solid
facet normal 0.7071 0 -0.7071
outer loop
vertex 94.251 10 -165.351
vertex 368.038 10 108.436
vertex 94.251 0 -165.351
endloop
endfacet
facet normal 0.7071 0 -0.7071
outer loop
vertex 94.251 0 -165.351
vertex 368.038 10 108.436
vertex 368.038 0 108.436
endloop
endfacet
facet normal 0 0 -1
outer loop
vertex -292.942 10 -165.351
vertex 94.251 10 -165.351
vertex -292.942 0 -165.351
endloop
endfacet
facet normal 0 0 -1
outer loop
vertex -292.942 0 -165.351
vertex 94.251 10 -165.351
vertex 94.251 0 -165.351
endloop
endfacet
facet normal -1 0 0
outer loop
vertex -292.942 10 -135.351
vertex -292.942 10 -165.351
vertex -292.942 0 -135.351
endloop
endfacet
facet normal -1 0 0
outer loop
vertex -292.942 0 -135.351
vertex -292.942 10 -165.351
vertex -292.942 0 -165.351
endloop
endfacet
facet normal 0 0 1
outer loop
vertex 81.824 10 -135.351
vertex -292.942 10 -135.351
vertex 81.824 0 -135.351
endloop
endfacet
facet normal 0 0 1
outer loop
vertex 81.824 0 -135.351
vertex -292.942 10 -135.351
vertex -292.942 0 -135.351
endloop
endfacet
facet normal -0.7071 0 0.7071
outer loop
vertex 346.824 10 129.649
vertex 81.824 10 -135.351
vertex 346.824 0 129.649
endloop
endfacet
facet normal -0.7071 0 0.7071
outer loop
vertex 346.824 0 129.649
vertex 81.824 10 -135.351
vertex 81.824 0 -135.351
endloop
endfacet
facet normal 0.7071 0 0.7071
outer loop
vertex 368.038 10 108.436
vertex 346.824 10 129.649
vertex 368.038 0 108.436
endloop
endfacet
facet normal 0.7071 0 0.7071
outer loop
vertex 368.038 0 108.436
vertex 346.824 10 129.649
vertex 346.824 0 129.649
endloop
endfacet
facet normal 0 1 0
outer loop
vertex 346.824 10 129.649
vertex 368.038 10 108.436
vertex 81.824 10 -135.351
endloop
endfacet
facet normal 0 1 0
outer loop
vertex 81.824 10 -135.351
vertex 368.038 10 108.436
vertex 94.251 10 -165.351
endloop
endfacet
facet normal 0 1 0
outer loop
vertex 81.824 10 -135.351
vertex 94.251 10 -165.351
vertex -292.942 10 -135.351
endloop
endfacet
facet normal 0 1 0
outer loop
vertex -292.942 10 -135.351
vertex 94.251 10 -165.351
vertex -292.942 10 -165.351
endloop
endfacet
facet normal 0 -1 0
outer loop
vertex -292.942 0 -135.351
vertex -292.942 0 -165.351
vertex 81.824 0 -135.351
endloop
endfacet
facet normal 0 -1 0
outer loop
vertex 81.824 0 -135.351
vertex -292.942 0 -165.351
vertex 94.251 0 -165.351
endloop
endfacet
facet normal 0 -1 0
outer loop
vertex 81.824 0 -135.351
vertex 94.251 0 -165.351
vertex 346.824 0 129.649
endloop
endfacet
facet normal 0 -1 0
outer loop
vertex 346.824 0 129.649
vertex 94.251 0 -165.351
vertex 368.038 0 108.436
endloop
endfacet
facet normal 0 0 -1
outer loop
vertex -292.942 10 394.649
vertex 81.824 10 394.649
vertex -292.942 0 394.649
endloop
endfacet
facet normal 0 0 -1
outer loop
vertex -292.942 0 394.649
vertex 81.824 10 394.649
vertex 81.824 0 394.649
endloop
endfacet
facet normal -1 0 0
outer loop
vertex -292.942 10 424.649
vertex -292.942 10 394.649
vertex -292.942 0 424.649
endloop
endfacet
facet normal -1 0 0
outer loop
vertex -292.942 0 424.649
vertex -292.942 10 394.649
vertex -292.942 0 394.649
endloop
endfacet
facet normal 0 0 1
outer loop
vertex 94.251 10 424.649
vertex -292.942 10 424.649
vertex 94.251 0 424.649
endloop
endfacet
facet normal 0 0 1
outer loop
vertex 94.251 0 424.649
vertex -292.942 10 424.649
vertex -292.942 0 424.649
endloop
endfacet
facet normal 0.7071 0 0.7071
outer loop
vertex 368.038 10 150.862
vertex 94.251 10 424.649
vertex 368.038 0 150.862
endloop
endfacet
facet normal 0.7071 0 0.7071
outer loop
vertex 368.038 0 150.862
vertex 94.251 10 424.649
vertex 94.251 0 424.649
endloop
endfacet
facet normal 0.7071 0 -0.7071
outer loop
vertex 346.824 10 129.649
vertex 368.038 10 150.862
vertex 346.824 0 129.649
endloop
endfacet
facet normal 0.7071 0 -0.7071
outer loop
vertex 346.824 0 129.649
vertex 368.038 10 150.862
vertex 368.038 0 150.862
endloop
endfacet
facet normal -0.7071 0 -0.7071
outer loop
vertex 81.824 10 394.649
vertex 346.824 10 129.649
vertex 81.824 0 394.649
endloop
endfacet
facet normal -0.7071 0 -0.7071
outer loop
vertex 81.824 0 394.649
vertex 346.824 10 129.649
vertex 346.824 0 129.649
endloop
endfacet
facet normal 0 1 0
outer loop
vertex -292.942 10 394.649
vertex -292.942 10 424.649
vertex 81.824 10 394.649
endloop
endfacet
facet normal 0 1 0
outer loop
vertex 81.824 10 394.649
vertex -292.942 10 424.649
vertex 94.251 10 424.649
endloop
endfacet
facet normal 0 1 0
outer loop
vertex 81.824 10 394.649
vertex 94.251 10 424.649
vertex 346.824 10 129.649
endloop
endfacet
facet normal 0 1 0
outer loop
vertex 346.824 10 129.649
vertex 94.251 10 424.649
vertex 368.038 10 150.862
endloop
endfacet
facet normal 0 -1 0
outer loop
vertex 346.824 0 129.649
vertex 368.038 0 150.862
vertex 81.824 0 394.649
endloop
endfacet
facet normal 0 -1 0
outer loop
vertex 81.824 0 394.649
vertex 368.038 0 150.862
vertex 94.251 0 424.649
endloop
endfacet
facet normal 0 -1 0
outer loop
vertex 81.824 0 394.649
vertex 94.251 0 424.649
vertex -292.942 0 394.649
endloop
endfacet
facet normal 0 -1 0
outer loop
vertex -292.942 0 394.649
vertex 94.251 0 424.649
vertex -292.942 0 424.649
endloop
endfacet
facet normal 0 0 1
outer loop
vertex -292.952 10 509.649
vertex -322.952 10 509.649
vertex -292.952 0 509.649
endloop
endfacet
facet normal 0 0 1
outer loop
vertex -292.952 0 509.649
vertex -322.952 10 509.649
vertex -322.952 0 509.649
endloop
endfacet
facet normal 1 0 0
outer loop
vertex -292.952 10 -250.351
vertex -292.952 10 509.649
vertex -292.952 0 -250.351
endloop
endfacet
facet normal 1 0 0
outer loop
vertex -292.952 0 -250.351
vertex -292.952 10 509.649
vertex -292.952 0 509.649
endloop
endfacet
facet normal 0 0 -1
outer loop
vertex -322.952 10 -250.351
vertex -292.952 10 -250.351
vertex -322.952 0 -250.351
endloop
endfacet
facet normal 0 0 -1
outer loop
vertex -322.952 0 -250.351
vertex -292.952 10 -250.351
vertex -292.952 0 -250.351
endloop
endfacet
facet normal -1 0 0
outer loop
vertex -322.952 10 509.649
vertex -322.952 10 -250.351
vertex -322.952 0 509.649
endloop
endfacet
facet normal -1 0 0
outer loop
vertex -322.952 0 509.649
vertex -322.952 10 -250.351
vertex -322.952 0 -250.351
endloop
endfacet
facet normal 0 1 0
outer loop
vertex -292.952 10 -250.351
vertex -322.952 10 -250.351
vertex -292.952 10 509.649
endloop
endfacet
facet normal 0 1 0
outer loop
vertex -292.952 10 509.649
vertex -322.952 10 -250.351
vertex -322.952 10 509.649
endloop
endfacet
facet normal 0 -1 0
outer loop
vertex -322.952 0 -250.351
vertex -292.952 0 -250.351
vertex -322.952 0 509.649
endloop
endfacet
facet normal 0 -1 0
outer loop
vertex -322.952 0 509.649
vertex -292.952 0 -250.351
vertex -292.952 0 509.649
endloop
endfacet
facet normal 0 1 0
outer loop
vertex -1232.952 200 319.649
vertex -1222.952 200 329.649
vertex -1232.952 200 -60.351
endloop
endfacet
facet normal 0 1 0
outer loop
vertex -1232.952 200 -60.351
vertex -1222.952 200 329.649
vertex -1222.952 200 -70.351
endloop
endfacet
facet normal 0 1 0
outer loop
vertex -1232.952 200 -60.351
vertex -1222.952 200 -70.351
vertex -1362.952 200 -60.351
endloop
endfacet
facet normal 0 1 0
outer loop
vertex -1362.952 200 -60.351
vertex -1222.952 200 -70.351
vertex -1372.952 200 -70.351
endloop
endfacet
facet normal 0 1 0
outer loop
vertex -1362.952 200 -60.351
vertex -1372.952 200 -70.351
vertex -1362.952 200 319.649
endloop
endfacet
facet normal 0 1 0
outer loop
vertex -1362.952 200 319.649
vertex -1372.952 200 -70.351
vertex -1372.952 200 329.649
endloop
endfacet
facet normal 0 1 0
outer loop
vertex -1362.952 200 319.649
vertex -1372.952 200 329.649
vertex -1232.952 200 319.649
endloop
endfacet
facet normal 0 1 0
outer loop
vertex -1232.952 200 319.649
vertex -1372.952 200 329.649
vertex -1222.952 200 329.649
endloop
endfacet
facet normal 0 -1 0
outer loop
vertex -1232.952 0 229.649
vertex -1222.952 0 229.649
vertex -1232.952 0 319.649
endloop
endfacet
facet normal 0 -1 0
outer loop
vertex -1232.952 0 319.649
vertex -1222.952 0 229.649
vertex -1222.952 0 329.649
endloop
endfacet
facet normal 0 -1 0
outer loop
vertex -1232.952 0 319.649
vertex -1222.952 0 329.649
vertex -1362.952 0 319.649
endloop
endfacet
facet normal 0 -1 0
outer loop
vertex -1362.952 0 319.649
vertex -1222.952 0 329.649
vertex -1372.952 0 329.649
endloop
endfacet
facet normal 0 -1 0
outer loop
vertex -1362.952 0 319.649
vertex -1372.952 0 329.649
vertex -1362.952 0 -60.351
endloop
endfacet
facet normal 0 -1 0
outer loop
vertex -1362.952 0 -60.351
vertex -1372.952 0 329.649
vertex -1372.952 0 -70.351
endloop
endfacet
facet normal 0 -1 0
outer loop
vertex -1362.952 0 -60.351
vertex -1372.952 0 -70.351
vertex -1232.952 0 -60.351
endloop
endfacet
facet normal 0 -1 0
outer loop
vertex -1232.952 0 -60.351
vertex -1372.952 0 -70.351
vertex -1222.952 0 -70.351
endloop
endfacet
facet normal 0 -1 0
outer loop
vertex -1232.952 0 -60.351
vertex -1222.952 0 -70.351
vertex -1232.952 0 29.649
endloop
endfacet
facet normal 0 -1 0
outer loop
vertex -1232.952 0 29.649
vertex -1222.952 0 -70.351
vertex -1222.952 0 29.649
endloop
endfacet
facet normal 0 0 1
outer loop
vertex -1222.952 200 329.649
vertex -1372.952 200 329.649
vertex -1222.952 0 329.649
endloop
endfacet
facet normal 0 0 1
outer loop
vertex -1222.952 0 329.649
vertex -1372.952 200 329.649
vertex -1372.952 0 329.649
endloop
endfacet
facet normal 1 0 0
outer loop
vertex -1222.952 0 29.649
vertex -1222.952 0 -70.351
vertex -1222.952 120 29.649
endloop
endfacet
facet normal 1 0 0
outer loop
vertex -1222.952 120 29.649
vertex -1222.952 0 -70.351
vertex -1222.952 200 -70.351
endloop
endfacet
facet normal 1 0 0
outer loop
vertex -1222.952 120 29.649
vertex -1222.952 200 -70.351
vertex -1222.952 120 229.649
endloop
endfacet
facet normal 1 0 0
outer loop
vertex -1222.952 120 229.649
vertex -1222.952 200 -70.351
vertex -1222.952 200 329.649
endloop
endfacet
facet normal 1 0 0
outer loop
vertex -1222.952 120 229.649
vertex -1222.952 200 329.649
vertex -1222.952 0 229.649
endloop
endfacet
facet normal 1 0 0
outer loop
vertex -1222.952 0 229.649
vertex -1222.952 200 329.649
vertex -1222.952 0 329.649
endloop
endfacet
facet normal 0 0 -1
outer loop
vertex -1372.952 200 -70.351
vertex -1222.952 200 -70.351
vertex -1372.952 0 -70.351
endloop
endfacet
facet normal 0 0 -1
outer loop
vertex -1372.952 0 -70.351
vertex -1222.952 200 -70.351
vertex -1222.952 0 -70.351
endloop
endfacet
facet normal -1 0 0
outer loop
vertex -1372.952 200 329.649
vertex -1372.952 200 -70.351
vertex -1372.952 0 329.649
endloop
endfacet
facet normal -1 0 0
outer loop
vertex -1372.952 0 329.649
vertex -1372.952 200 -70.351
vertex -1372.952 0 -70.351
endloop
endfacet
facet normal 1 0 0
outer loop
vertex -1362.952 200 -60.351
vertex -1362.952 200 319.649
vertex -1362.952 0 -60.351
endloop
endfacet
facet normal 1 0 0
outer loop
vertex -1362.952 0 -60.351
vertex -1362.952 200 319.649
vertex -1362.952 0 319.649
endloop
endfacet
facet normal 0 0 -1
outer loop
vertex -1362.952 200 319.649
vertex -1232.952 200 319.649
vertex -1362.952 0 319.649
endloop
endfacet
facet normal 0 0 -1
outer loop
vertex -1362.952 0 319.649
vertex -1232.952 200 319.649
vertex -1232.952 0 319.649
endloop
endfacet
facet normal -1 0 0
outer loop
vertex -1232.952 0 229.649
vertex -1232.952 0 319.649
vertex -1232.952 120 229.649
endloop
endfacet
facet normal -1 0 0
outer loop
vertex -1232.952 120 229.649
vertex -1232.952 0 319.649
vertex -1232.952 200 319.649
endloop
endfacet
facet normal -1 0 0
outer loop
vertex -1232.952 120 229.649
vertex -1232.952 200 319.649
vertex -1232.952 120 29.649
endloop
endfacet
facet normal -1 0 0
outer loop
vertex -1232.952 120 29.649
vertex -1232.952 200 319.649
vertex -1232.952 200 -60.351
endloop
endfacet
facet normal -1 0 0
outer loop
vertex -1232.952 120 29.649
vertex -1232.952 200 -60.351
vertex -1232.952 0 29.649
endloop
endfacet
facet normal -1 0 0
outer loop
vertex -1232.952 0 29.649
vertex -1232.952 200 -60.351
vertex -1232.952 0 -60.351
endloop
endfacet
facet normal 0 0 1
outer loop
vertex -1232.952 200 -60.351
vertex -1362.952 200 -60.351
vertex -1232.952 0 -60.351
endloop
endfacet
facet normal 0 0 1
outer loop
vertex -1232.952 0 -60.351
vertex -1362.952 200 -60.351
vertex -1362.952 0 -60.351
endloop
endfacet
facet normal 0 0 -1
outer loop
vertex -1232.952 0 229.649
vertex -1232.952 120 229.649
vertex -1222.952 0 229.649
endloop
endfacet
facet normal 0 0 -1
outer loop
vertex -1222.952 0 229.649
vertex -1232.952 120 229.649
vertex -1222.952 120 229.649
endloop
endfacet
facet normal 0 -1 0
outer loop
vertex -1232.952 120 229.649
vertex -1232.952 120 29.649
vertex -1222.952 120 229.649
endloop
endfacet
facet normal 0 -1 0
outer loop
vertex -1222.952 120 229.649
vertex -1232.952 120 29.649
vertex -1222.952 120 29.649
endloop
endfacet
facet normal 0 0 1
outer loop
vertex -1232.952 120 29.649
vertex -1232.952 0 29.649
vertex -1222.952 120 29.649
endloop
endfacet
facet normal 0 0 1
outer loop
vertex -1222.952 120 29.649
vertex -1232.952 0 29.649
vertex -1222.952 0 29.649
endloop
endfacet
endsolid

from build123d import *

# Parameters (mm, degrees)
BOSS_EXTRUDE2_DEPTH   = 10
BOSS_EXTRUDE2_2_DEPTH = 10
SKETCH2_W             = 30
SKETCH2_H             = 760
BOSS_EXTRUDE9_DEPTH   = 10
SKETCH3_W             = 150
SKETCH3_H             = 400
BOSS_EXTRUDE10_DEPTH  = 200
SKETCH4_W             = 130
SKETCH4_H             = 380
CUT_EXTRUDE2_DEPTH    = 200
SKETCH5_W             = 200
SKETCH5_H             = 120
CUT_EXTRUDE3_DEPTH    = 10


with BuildPart() as part:
    # Sketch1 → Boss-Extrude2 (new body)
    with BuildSketch(Plane(origin=(0, 0, 0), x_dir=(1, 0, 0), z_dir=(0, 1, 0))):
        Polygon((-292.942154032, -394.648768766), (81.824439968, -394.648768766), (346.824439968, -129.648768766), (368.037643404, -150.861972202), (94.250846839, -424.648768766), (-292.942154032, -424.648768766), align=None)
    extrude(amount=BOSS_EXTRUDE2_DEPTH)


with BuildPart() as body_2:
    # Sketch1 → Boss-Extrude2 2 (new body)
    with BuildSketch(Plane(origin=(0, 0, 0), x_dir=(1, 0, 0), z_dir=(0, 1, 0))):
        Polygon((346.824439968, -129.648768766), (368.037643404, -108.435565331), (94.250846839, 165.351231234), (-292.942154032, 165.351231234), (-292.942154032, 135.351231234), (81.824439968, 135.351231234), align=None)
    extrude(amount=BOSS_EXTRUDE2_2_DEPTH)


with BuildPart() as body_3:
    # Sketch2 → Boss-Extrude9 (new body)
    with BuildSketch(Plane(origin=(0, 0, 0), x_dir=(1, 0, 0), z_dir=(0, 1, 0))):
        with Locations((-307.952154032, -129.648768766)):
            Rectangle(SKETCH2_W, SKETCH2_H)
    extrude(amount=BOSS_EXTRUDE9_DEPTH)


with BuildPart() as body_4:
    # Sketch3 → Boss-Extrude10 (new body)
    with BuildSketch(Plane(origin=(0, 0, 0), x_dir=(1, 0, 0), z_dir=(0, 1, 0))):
        with Locations((-1297.952154032, -129.648768766)):
            Rectangle(SKETCH3_W, SKETCH3_H)
    extrude(amount=BOSS_EXTRUDE10_DEPTH)

    # Sketch4 → Cut-Extrude2 (cut)
    with BuildSketch(Plane(origin=(0, 0, 0), x_dir=(1, 0, 0), z_dir=(0, 1, 0))):
        with Locations((-1297.952154032, -129.648768766)):
            Rectangle(SKETCH4_W, SKETCH4_H)
    extrude(amount=CUT_EXTRUDE2_DEPTH, mode=Mode.SUBTRACT)

    # Sketch5 → Cut-Extrude3 (cut)
    with BuildSketch(Plane(origin=(-1222.952154032, 0, 0), x_dir=(0, 0, -1), z_dir=(1, 0, 0))):
        with Locations((-129.648768766, 60)):
            Rectangle(SKETCH5_W, SKETCH5_H)
    extrude(amount=-CUT_EXTRUDE3_DEPTH, mode=Mode.SUBTRACT)


solid = Compound([part.part, body_2.part, body_3.part, body_4.part])
